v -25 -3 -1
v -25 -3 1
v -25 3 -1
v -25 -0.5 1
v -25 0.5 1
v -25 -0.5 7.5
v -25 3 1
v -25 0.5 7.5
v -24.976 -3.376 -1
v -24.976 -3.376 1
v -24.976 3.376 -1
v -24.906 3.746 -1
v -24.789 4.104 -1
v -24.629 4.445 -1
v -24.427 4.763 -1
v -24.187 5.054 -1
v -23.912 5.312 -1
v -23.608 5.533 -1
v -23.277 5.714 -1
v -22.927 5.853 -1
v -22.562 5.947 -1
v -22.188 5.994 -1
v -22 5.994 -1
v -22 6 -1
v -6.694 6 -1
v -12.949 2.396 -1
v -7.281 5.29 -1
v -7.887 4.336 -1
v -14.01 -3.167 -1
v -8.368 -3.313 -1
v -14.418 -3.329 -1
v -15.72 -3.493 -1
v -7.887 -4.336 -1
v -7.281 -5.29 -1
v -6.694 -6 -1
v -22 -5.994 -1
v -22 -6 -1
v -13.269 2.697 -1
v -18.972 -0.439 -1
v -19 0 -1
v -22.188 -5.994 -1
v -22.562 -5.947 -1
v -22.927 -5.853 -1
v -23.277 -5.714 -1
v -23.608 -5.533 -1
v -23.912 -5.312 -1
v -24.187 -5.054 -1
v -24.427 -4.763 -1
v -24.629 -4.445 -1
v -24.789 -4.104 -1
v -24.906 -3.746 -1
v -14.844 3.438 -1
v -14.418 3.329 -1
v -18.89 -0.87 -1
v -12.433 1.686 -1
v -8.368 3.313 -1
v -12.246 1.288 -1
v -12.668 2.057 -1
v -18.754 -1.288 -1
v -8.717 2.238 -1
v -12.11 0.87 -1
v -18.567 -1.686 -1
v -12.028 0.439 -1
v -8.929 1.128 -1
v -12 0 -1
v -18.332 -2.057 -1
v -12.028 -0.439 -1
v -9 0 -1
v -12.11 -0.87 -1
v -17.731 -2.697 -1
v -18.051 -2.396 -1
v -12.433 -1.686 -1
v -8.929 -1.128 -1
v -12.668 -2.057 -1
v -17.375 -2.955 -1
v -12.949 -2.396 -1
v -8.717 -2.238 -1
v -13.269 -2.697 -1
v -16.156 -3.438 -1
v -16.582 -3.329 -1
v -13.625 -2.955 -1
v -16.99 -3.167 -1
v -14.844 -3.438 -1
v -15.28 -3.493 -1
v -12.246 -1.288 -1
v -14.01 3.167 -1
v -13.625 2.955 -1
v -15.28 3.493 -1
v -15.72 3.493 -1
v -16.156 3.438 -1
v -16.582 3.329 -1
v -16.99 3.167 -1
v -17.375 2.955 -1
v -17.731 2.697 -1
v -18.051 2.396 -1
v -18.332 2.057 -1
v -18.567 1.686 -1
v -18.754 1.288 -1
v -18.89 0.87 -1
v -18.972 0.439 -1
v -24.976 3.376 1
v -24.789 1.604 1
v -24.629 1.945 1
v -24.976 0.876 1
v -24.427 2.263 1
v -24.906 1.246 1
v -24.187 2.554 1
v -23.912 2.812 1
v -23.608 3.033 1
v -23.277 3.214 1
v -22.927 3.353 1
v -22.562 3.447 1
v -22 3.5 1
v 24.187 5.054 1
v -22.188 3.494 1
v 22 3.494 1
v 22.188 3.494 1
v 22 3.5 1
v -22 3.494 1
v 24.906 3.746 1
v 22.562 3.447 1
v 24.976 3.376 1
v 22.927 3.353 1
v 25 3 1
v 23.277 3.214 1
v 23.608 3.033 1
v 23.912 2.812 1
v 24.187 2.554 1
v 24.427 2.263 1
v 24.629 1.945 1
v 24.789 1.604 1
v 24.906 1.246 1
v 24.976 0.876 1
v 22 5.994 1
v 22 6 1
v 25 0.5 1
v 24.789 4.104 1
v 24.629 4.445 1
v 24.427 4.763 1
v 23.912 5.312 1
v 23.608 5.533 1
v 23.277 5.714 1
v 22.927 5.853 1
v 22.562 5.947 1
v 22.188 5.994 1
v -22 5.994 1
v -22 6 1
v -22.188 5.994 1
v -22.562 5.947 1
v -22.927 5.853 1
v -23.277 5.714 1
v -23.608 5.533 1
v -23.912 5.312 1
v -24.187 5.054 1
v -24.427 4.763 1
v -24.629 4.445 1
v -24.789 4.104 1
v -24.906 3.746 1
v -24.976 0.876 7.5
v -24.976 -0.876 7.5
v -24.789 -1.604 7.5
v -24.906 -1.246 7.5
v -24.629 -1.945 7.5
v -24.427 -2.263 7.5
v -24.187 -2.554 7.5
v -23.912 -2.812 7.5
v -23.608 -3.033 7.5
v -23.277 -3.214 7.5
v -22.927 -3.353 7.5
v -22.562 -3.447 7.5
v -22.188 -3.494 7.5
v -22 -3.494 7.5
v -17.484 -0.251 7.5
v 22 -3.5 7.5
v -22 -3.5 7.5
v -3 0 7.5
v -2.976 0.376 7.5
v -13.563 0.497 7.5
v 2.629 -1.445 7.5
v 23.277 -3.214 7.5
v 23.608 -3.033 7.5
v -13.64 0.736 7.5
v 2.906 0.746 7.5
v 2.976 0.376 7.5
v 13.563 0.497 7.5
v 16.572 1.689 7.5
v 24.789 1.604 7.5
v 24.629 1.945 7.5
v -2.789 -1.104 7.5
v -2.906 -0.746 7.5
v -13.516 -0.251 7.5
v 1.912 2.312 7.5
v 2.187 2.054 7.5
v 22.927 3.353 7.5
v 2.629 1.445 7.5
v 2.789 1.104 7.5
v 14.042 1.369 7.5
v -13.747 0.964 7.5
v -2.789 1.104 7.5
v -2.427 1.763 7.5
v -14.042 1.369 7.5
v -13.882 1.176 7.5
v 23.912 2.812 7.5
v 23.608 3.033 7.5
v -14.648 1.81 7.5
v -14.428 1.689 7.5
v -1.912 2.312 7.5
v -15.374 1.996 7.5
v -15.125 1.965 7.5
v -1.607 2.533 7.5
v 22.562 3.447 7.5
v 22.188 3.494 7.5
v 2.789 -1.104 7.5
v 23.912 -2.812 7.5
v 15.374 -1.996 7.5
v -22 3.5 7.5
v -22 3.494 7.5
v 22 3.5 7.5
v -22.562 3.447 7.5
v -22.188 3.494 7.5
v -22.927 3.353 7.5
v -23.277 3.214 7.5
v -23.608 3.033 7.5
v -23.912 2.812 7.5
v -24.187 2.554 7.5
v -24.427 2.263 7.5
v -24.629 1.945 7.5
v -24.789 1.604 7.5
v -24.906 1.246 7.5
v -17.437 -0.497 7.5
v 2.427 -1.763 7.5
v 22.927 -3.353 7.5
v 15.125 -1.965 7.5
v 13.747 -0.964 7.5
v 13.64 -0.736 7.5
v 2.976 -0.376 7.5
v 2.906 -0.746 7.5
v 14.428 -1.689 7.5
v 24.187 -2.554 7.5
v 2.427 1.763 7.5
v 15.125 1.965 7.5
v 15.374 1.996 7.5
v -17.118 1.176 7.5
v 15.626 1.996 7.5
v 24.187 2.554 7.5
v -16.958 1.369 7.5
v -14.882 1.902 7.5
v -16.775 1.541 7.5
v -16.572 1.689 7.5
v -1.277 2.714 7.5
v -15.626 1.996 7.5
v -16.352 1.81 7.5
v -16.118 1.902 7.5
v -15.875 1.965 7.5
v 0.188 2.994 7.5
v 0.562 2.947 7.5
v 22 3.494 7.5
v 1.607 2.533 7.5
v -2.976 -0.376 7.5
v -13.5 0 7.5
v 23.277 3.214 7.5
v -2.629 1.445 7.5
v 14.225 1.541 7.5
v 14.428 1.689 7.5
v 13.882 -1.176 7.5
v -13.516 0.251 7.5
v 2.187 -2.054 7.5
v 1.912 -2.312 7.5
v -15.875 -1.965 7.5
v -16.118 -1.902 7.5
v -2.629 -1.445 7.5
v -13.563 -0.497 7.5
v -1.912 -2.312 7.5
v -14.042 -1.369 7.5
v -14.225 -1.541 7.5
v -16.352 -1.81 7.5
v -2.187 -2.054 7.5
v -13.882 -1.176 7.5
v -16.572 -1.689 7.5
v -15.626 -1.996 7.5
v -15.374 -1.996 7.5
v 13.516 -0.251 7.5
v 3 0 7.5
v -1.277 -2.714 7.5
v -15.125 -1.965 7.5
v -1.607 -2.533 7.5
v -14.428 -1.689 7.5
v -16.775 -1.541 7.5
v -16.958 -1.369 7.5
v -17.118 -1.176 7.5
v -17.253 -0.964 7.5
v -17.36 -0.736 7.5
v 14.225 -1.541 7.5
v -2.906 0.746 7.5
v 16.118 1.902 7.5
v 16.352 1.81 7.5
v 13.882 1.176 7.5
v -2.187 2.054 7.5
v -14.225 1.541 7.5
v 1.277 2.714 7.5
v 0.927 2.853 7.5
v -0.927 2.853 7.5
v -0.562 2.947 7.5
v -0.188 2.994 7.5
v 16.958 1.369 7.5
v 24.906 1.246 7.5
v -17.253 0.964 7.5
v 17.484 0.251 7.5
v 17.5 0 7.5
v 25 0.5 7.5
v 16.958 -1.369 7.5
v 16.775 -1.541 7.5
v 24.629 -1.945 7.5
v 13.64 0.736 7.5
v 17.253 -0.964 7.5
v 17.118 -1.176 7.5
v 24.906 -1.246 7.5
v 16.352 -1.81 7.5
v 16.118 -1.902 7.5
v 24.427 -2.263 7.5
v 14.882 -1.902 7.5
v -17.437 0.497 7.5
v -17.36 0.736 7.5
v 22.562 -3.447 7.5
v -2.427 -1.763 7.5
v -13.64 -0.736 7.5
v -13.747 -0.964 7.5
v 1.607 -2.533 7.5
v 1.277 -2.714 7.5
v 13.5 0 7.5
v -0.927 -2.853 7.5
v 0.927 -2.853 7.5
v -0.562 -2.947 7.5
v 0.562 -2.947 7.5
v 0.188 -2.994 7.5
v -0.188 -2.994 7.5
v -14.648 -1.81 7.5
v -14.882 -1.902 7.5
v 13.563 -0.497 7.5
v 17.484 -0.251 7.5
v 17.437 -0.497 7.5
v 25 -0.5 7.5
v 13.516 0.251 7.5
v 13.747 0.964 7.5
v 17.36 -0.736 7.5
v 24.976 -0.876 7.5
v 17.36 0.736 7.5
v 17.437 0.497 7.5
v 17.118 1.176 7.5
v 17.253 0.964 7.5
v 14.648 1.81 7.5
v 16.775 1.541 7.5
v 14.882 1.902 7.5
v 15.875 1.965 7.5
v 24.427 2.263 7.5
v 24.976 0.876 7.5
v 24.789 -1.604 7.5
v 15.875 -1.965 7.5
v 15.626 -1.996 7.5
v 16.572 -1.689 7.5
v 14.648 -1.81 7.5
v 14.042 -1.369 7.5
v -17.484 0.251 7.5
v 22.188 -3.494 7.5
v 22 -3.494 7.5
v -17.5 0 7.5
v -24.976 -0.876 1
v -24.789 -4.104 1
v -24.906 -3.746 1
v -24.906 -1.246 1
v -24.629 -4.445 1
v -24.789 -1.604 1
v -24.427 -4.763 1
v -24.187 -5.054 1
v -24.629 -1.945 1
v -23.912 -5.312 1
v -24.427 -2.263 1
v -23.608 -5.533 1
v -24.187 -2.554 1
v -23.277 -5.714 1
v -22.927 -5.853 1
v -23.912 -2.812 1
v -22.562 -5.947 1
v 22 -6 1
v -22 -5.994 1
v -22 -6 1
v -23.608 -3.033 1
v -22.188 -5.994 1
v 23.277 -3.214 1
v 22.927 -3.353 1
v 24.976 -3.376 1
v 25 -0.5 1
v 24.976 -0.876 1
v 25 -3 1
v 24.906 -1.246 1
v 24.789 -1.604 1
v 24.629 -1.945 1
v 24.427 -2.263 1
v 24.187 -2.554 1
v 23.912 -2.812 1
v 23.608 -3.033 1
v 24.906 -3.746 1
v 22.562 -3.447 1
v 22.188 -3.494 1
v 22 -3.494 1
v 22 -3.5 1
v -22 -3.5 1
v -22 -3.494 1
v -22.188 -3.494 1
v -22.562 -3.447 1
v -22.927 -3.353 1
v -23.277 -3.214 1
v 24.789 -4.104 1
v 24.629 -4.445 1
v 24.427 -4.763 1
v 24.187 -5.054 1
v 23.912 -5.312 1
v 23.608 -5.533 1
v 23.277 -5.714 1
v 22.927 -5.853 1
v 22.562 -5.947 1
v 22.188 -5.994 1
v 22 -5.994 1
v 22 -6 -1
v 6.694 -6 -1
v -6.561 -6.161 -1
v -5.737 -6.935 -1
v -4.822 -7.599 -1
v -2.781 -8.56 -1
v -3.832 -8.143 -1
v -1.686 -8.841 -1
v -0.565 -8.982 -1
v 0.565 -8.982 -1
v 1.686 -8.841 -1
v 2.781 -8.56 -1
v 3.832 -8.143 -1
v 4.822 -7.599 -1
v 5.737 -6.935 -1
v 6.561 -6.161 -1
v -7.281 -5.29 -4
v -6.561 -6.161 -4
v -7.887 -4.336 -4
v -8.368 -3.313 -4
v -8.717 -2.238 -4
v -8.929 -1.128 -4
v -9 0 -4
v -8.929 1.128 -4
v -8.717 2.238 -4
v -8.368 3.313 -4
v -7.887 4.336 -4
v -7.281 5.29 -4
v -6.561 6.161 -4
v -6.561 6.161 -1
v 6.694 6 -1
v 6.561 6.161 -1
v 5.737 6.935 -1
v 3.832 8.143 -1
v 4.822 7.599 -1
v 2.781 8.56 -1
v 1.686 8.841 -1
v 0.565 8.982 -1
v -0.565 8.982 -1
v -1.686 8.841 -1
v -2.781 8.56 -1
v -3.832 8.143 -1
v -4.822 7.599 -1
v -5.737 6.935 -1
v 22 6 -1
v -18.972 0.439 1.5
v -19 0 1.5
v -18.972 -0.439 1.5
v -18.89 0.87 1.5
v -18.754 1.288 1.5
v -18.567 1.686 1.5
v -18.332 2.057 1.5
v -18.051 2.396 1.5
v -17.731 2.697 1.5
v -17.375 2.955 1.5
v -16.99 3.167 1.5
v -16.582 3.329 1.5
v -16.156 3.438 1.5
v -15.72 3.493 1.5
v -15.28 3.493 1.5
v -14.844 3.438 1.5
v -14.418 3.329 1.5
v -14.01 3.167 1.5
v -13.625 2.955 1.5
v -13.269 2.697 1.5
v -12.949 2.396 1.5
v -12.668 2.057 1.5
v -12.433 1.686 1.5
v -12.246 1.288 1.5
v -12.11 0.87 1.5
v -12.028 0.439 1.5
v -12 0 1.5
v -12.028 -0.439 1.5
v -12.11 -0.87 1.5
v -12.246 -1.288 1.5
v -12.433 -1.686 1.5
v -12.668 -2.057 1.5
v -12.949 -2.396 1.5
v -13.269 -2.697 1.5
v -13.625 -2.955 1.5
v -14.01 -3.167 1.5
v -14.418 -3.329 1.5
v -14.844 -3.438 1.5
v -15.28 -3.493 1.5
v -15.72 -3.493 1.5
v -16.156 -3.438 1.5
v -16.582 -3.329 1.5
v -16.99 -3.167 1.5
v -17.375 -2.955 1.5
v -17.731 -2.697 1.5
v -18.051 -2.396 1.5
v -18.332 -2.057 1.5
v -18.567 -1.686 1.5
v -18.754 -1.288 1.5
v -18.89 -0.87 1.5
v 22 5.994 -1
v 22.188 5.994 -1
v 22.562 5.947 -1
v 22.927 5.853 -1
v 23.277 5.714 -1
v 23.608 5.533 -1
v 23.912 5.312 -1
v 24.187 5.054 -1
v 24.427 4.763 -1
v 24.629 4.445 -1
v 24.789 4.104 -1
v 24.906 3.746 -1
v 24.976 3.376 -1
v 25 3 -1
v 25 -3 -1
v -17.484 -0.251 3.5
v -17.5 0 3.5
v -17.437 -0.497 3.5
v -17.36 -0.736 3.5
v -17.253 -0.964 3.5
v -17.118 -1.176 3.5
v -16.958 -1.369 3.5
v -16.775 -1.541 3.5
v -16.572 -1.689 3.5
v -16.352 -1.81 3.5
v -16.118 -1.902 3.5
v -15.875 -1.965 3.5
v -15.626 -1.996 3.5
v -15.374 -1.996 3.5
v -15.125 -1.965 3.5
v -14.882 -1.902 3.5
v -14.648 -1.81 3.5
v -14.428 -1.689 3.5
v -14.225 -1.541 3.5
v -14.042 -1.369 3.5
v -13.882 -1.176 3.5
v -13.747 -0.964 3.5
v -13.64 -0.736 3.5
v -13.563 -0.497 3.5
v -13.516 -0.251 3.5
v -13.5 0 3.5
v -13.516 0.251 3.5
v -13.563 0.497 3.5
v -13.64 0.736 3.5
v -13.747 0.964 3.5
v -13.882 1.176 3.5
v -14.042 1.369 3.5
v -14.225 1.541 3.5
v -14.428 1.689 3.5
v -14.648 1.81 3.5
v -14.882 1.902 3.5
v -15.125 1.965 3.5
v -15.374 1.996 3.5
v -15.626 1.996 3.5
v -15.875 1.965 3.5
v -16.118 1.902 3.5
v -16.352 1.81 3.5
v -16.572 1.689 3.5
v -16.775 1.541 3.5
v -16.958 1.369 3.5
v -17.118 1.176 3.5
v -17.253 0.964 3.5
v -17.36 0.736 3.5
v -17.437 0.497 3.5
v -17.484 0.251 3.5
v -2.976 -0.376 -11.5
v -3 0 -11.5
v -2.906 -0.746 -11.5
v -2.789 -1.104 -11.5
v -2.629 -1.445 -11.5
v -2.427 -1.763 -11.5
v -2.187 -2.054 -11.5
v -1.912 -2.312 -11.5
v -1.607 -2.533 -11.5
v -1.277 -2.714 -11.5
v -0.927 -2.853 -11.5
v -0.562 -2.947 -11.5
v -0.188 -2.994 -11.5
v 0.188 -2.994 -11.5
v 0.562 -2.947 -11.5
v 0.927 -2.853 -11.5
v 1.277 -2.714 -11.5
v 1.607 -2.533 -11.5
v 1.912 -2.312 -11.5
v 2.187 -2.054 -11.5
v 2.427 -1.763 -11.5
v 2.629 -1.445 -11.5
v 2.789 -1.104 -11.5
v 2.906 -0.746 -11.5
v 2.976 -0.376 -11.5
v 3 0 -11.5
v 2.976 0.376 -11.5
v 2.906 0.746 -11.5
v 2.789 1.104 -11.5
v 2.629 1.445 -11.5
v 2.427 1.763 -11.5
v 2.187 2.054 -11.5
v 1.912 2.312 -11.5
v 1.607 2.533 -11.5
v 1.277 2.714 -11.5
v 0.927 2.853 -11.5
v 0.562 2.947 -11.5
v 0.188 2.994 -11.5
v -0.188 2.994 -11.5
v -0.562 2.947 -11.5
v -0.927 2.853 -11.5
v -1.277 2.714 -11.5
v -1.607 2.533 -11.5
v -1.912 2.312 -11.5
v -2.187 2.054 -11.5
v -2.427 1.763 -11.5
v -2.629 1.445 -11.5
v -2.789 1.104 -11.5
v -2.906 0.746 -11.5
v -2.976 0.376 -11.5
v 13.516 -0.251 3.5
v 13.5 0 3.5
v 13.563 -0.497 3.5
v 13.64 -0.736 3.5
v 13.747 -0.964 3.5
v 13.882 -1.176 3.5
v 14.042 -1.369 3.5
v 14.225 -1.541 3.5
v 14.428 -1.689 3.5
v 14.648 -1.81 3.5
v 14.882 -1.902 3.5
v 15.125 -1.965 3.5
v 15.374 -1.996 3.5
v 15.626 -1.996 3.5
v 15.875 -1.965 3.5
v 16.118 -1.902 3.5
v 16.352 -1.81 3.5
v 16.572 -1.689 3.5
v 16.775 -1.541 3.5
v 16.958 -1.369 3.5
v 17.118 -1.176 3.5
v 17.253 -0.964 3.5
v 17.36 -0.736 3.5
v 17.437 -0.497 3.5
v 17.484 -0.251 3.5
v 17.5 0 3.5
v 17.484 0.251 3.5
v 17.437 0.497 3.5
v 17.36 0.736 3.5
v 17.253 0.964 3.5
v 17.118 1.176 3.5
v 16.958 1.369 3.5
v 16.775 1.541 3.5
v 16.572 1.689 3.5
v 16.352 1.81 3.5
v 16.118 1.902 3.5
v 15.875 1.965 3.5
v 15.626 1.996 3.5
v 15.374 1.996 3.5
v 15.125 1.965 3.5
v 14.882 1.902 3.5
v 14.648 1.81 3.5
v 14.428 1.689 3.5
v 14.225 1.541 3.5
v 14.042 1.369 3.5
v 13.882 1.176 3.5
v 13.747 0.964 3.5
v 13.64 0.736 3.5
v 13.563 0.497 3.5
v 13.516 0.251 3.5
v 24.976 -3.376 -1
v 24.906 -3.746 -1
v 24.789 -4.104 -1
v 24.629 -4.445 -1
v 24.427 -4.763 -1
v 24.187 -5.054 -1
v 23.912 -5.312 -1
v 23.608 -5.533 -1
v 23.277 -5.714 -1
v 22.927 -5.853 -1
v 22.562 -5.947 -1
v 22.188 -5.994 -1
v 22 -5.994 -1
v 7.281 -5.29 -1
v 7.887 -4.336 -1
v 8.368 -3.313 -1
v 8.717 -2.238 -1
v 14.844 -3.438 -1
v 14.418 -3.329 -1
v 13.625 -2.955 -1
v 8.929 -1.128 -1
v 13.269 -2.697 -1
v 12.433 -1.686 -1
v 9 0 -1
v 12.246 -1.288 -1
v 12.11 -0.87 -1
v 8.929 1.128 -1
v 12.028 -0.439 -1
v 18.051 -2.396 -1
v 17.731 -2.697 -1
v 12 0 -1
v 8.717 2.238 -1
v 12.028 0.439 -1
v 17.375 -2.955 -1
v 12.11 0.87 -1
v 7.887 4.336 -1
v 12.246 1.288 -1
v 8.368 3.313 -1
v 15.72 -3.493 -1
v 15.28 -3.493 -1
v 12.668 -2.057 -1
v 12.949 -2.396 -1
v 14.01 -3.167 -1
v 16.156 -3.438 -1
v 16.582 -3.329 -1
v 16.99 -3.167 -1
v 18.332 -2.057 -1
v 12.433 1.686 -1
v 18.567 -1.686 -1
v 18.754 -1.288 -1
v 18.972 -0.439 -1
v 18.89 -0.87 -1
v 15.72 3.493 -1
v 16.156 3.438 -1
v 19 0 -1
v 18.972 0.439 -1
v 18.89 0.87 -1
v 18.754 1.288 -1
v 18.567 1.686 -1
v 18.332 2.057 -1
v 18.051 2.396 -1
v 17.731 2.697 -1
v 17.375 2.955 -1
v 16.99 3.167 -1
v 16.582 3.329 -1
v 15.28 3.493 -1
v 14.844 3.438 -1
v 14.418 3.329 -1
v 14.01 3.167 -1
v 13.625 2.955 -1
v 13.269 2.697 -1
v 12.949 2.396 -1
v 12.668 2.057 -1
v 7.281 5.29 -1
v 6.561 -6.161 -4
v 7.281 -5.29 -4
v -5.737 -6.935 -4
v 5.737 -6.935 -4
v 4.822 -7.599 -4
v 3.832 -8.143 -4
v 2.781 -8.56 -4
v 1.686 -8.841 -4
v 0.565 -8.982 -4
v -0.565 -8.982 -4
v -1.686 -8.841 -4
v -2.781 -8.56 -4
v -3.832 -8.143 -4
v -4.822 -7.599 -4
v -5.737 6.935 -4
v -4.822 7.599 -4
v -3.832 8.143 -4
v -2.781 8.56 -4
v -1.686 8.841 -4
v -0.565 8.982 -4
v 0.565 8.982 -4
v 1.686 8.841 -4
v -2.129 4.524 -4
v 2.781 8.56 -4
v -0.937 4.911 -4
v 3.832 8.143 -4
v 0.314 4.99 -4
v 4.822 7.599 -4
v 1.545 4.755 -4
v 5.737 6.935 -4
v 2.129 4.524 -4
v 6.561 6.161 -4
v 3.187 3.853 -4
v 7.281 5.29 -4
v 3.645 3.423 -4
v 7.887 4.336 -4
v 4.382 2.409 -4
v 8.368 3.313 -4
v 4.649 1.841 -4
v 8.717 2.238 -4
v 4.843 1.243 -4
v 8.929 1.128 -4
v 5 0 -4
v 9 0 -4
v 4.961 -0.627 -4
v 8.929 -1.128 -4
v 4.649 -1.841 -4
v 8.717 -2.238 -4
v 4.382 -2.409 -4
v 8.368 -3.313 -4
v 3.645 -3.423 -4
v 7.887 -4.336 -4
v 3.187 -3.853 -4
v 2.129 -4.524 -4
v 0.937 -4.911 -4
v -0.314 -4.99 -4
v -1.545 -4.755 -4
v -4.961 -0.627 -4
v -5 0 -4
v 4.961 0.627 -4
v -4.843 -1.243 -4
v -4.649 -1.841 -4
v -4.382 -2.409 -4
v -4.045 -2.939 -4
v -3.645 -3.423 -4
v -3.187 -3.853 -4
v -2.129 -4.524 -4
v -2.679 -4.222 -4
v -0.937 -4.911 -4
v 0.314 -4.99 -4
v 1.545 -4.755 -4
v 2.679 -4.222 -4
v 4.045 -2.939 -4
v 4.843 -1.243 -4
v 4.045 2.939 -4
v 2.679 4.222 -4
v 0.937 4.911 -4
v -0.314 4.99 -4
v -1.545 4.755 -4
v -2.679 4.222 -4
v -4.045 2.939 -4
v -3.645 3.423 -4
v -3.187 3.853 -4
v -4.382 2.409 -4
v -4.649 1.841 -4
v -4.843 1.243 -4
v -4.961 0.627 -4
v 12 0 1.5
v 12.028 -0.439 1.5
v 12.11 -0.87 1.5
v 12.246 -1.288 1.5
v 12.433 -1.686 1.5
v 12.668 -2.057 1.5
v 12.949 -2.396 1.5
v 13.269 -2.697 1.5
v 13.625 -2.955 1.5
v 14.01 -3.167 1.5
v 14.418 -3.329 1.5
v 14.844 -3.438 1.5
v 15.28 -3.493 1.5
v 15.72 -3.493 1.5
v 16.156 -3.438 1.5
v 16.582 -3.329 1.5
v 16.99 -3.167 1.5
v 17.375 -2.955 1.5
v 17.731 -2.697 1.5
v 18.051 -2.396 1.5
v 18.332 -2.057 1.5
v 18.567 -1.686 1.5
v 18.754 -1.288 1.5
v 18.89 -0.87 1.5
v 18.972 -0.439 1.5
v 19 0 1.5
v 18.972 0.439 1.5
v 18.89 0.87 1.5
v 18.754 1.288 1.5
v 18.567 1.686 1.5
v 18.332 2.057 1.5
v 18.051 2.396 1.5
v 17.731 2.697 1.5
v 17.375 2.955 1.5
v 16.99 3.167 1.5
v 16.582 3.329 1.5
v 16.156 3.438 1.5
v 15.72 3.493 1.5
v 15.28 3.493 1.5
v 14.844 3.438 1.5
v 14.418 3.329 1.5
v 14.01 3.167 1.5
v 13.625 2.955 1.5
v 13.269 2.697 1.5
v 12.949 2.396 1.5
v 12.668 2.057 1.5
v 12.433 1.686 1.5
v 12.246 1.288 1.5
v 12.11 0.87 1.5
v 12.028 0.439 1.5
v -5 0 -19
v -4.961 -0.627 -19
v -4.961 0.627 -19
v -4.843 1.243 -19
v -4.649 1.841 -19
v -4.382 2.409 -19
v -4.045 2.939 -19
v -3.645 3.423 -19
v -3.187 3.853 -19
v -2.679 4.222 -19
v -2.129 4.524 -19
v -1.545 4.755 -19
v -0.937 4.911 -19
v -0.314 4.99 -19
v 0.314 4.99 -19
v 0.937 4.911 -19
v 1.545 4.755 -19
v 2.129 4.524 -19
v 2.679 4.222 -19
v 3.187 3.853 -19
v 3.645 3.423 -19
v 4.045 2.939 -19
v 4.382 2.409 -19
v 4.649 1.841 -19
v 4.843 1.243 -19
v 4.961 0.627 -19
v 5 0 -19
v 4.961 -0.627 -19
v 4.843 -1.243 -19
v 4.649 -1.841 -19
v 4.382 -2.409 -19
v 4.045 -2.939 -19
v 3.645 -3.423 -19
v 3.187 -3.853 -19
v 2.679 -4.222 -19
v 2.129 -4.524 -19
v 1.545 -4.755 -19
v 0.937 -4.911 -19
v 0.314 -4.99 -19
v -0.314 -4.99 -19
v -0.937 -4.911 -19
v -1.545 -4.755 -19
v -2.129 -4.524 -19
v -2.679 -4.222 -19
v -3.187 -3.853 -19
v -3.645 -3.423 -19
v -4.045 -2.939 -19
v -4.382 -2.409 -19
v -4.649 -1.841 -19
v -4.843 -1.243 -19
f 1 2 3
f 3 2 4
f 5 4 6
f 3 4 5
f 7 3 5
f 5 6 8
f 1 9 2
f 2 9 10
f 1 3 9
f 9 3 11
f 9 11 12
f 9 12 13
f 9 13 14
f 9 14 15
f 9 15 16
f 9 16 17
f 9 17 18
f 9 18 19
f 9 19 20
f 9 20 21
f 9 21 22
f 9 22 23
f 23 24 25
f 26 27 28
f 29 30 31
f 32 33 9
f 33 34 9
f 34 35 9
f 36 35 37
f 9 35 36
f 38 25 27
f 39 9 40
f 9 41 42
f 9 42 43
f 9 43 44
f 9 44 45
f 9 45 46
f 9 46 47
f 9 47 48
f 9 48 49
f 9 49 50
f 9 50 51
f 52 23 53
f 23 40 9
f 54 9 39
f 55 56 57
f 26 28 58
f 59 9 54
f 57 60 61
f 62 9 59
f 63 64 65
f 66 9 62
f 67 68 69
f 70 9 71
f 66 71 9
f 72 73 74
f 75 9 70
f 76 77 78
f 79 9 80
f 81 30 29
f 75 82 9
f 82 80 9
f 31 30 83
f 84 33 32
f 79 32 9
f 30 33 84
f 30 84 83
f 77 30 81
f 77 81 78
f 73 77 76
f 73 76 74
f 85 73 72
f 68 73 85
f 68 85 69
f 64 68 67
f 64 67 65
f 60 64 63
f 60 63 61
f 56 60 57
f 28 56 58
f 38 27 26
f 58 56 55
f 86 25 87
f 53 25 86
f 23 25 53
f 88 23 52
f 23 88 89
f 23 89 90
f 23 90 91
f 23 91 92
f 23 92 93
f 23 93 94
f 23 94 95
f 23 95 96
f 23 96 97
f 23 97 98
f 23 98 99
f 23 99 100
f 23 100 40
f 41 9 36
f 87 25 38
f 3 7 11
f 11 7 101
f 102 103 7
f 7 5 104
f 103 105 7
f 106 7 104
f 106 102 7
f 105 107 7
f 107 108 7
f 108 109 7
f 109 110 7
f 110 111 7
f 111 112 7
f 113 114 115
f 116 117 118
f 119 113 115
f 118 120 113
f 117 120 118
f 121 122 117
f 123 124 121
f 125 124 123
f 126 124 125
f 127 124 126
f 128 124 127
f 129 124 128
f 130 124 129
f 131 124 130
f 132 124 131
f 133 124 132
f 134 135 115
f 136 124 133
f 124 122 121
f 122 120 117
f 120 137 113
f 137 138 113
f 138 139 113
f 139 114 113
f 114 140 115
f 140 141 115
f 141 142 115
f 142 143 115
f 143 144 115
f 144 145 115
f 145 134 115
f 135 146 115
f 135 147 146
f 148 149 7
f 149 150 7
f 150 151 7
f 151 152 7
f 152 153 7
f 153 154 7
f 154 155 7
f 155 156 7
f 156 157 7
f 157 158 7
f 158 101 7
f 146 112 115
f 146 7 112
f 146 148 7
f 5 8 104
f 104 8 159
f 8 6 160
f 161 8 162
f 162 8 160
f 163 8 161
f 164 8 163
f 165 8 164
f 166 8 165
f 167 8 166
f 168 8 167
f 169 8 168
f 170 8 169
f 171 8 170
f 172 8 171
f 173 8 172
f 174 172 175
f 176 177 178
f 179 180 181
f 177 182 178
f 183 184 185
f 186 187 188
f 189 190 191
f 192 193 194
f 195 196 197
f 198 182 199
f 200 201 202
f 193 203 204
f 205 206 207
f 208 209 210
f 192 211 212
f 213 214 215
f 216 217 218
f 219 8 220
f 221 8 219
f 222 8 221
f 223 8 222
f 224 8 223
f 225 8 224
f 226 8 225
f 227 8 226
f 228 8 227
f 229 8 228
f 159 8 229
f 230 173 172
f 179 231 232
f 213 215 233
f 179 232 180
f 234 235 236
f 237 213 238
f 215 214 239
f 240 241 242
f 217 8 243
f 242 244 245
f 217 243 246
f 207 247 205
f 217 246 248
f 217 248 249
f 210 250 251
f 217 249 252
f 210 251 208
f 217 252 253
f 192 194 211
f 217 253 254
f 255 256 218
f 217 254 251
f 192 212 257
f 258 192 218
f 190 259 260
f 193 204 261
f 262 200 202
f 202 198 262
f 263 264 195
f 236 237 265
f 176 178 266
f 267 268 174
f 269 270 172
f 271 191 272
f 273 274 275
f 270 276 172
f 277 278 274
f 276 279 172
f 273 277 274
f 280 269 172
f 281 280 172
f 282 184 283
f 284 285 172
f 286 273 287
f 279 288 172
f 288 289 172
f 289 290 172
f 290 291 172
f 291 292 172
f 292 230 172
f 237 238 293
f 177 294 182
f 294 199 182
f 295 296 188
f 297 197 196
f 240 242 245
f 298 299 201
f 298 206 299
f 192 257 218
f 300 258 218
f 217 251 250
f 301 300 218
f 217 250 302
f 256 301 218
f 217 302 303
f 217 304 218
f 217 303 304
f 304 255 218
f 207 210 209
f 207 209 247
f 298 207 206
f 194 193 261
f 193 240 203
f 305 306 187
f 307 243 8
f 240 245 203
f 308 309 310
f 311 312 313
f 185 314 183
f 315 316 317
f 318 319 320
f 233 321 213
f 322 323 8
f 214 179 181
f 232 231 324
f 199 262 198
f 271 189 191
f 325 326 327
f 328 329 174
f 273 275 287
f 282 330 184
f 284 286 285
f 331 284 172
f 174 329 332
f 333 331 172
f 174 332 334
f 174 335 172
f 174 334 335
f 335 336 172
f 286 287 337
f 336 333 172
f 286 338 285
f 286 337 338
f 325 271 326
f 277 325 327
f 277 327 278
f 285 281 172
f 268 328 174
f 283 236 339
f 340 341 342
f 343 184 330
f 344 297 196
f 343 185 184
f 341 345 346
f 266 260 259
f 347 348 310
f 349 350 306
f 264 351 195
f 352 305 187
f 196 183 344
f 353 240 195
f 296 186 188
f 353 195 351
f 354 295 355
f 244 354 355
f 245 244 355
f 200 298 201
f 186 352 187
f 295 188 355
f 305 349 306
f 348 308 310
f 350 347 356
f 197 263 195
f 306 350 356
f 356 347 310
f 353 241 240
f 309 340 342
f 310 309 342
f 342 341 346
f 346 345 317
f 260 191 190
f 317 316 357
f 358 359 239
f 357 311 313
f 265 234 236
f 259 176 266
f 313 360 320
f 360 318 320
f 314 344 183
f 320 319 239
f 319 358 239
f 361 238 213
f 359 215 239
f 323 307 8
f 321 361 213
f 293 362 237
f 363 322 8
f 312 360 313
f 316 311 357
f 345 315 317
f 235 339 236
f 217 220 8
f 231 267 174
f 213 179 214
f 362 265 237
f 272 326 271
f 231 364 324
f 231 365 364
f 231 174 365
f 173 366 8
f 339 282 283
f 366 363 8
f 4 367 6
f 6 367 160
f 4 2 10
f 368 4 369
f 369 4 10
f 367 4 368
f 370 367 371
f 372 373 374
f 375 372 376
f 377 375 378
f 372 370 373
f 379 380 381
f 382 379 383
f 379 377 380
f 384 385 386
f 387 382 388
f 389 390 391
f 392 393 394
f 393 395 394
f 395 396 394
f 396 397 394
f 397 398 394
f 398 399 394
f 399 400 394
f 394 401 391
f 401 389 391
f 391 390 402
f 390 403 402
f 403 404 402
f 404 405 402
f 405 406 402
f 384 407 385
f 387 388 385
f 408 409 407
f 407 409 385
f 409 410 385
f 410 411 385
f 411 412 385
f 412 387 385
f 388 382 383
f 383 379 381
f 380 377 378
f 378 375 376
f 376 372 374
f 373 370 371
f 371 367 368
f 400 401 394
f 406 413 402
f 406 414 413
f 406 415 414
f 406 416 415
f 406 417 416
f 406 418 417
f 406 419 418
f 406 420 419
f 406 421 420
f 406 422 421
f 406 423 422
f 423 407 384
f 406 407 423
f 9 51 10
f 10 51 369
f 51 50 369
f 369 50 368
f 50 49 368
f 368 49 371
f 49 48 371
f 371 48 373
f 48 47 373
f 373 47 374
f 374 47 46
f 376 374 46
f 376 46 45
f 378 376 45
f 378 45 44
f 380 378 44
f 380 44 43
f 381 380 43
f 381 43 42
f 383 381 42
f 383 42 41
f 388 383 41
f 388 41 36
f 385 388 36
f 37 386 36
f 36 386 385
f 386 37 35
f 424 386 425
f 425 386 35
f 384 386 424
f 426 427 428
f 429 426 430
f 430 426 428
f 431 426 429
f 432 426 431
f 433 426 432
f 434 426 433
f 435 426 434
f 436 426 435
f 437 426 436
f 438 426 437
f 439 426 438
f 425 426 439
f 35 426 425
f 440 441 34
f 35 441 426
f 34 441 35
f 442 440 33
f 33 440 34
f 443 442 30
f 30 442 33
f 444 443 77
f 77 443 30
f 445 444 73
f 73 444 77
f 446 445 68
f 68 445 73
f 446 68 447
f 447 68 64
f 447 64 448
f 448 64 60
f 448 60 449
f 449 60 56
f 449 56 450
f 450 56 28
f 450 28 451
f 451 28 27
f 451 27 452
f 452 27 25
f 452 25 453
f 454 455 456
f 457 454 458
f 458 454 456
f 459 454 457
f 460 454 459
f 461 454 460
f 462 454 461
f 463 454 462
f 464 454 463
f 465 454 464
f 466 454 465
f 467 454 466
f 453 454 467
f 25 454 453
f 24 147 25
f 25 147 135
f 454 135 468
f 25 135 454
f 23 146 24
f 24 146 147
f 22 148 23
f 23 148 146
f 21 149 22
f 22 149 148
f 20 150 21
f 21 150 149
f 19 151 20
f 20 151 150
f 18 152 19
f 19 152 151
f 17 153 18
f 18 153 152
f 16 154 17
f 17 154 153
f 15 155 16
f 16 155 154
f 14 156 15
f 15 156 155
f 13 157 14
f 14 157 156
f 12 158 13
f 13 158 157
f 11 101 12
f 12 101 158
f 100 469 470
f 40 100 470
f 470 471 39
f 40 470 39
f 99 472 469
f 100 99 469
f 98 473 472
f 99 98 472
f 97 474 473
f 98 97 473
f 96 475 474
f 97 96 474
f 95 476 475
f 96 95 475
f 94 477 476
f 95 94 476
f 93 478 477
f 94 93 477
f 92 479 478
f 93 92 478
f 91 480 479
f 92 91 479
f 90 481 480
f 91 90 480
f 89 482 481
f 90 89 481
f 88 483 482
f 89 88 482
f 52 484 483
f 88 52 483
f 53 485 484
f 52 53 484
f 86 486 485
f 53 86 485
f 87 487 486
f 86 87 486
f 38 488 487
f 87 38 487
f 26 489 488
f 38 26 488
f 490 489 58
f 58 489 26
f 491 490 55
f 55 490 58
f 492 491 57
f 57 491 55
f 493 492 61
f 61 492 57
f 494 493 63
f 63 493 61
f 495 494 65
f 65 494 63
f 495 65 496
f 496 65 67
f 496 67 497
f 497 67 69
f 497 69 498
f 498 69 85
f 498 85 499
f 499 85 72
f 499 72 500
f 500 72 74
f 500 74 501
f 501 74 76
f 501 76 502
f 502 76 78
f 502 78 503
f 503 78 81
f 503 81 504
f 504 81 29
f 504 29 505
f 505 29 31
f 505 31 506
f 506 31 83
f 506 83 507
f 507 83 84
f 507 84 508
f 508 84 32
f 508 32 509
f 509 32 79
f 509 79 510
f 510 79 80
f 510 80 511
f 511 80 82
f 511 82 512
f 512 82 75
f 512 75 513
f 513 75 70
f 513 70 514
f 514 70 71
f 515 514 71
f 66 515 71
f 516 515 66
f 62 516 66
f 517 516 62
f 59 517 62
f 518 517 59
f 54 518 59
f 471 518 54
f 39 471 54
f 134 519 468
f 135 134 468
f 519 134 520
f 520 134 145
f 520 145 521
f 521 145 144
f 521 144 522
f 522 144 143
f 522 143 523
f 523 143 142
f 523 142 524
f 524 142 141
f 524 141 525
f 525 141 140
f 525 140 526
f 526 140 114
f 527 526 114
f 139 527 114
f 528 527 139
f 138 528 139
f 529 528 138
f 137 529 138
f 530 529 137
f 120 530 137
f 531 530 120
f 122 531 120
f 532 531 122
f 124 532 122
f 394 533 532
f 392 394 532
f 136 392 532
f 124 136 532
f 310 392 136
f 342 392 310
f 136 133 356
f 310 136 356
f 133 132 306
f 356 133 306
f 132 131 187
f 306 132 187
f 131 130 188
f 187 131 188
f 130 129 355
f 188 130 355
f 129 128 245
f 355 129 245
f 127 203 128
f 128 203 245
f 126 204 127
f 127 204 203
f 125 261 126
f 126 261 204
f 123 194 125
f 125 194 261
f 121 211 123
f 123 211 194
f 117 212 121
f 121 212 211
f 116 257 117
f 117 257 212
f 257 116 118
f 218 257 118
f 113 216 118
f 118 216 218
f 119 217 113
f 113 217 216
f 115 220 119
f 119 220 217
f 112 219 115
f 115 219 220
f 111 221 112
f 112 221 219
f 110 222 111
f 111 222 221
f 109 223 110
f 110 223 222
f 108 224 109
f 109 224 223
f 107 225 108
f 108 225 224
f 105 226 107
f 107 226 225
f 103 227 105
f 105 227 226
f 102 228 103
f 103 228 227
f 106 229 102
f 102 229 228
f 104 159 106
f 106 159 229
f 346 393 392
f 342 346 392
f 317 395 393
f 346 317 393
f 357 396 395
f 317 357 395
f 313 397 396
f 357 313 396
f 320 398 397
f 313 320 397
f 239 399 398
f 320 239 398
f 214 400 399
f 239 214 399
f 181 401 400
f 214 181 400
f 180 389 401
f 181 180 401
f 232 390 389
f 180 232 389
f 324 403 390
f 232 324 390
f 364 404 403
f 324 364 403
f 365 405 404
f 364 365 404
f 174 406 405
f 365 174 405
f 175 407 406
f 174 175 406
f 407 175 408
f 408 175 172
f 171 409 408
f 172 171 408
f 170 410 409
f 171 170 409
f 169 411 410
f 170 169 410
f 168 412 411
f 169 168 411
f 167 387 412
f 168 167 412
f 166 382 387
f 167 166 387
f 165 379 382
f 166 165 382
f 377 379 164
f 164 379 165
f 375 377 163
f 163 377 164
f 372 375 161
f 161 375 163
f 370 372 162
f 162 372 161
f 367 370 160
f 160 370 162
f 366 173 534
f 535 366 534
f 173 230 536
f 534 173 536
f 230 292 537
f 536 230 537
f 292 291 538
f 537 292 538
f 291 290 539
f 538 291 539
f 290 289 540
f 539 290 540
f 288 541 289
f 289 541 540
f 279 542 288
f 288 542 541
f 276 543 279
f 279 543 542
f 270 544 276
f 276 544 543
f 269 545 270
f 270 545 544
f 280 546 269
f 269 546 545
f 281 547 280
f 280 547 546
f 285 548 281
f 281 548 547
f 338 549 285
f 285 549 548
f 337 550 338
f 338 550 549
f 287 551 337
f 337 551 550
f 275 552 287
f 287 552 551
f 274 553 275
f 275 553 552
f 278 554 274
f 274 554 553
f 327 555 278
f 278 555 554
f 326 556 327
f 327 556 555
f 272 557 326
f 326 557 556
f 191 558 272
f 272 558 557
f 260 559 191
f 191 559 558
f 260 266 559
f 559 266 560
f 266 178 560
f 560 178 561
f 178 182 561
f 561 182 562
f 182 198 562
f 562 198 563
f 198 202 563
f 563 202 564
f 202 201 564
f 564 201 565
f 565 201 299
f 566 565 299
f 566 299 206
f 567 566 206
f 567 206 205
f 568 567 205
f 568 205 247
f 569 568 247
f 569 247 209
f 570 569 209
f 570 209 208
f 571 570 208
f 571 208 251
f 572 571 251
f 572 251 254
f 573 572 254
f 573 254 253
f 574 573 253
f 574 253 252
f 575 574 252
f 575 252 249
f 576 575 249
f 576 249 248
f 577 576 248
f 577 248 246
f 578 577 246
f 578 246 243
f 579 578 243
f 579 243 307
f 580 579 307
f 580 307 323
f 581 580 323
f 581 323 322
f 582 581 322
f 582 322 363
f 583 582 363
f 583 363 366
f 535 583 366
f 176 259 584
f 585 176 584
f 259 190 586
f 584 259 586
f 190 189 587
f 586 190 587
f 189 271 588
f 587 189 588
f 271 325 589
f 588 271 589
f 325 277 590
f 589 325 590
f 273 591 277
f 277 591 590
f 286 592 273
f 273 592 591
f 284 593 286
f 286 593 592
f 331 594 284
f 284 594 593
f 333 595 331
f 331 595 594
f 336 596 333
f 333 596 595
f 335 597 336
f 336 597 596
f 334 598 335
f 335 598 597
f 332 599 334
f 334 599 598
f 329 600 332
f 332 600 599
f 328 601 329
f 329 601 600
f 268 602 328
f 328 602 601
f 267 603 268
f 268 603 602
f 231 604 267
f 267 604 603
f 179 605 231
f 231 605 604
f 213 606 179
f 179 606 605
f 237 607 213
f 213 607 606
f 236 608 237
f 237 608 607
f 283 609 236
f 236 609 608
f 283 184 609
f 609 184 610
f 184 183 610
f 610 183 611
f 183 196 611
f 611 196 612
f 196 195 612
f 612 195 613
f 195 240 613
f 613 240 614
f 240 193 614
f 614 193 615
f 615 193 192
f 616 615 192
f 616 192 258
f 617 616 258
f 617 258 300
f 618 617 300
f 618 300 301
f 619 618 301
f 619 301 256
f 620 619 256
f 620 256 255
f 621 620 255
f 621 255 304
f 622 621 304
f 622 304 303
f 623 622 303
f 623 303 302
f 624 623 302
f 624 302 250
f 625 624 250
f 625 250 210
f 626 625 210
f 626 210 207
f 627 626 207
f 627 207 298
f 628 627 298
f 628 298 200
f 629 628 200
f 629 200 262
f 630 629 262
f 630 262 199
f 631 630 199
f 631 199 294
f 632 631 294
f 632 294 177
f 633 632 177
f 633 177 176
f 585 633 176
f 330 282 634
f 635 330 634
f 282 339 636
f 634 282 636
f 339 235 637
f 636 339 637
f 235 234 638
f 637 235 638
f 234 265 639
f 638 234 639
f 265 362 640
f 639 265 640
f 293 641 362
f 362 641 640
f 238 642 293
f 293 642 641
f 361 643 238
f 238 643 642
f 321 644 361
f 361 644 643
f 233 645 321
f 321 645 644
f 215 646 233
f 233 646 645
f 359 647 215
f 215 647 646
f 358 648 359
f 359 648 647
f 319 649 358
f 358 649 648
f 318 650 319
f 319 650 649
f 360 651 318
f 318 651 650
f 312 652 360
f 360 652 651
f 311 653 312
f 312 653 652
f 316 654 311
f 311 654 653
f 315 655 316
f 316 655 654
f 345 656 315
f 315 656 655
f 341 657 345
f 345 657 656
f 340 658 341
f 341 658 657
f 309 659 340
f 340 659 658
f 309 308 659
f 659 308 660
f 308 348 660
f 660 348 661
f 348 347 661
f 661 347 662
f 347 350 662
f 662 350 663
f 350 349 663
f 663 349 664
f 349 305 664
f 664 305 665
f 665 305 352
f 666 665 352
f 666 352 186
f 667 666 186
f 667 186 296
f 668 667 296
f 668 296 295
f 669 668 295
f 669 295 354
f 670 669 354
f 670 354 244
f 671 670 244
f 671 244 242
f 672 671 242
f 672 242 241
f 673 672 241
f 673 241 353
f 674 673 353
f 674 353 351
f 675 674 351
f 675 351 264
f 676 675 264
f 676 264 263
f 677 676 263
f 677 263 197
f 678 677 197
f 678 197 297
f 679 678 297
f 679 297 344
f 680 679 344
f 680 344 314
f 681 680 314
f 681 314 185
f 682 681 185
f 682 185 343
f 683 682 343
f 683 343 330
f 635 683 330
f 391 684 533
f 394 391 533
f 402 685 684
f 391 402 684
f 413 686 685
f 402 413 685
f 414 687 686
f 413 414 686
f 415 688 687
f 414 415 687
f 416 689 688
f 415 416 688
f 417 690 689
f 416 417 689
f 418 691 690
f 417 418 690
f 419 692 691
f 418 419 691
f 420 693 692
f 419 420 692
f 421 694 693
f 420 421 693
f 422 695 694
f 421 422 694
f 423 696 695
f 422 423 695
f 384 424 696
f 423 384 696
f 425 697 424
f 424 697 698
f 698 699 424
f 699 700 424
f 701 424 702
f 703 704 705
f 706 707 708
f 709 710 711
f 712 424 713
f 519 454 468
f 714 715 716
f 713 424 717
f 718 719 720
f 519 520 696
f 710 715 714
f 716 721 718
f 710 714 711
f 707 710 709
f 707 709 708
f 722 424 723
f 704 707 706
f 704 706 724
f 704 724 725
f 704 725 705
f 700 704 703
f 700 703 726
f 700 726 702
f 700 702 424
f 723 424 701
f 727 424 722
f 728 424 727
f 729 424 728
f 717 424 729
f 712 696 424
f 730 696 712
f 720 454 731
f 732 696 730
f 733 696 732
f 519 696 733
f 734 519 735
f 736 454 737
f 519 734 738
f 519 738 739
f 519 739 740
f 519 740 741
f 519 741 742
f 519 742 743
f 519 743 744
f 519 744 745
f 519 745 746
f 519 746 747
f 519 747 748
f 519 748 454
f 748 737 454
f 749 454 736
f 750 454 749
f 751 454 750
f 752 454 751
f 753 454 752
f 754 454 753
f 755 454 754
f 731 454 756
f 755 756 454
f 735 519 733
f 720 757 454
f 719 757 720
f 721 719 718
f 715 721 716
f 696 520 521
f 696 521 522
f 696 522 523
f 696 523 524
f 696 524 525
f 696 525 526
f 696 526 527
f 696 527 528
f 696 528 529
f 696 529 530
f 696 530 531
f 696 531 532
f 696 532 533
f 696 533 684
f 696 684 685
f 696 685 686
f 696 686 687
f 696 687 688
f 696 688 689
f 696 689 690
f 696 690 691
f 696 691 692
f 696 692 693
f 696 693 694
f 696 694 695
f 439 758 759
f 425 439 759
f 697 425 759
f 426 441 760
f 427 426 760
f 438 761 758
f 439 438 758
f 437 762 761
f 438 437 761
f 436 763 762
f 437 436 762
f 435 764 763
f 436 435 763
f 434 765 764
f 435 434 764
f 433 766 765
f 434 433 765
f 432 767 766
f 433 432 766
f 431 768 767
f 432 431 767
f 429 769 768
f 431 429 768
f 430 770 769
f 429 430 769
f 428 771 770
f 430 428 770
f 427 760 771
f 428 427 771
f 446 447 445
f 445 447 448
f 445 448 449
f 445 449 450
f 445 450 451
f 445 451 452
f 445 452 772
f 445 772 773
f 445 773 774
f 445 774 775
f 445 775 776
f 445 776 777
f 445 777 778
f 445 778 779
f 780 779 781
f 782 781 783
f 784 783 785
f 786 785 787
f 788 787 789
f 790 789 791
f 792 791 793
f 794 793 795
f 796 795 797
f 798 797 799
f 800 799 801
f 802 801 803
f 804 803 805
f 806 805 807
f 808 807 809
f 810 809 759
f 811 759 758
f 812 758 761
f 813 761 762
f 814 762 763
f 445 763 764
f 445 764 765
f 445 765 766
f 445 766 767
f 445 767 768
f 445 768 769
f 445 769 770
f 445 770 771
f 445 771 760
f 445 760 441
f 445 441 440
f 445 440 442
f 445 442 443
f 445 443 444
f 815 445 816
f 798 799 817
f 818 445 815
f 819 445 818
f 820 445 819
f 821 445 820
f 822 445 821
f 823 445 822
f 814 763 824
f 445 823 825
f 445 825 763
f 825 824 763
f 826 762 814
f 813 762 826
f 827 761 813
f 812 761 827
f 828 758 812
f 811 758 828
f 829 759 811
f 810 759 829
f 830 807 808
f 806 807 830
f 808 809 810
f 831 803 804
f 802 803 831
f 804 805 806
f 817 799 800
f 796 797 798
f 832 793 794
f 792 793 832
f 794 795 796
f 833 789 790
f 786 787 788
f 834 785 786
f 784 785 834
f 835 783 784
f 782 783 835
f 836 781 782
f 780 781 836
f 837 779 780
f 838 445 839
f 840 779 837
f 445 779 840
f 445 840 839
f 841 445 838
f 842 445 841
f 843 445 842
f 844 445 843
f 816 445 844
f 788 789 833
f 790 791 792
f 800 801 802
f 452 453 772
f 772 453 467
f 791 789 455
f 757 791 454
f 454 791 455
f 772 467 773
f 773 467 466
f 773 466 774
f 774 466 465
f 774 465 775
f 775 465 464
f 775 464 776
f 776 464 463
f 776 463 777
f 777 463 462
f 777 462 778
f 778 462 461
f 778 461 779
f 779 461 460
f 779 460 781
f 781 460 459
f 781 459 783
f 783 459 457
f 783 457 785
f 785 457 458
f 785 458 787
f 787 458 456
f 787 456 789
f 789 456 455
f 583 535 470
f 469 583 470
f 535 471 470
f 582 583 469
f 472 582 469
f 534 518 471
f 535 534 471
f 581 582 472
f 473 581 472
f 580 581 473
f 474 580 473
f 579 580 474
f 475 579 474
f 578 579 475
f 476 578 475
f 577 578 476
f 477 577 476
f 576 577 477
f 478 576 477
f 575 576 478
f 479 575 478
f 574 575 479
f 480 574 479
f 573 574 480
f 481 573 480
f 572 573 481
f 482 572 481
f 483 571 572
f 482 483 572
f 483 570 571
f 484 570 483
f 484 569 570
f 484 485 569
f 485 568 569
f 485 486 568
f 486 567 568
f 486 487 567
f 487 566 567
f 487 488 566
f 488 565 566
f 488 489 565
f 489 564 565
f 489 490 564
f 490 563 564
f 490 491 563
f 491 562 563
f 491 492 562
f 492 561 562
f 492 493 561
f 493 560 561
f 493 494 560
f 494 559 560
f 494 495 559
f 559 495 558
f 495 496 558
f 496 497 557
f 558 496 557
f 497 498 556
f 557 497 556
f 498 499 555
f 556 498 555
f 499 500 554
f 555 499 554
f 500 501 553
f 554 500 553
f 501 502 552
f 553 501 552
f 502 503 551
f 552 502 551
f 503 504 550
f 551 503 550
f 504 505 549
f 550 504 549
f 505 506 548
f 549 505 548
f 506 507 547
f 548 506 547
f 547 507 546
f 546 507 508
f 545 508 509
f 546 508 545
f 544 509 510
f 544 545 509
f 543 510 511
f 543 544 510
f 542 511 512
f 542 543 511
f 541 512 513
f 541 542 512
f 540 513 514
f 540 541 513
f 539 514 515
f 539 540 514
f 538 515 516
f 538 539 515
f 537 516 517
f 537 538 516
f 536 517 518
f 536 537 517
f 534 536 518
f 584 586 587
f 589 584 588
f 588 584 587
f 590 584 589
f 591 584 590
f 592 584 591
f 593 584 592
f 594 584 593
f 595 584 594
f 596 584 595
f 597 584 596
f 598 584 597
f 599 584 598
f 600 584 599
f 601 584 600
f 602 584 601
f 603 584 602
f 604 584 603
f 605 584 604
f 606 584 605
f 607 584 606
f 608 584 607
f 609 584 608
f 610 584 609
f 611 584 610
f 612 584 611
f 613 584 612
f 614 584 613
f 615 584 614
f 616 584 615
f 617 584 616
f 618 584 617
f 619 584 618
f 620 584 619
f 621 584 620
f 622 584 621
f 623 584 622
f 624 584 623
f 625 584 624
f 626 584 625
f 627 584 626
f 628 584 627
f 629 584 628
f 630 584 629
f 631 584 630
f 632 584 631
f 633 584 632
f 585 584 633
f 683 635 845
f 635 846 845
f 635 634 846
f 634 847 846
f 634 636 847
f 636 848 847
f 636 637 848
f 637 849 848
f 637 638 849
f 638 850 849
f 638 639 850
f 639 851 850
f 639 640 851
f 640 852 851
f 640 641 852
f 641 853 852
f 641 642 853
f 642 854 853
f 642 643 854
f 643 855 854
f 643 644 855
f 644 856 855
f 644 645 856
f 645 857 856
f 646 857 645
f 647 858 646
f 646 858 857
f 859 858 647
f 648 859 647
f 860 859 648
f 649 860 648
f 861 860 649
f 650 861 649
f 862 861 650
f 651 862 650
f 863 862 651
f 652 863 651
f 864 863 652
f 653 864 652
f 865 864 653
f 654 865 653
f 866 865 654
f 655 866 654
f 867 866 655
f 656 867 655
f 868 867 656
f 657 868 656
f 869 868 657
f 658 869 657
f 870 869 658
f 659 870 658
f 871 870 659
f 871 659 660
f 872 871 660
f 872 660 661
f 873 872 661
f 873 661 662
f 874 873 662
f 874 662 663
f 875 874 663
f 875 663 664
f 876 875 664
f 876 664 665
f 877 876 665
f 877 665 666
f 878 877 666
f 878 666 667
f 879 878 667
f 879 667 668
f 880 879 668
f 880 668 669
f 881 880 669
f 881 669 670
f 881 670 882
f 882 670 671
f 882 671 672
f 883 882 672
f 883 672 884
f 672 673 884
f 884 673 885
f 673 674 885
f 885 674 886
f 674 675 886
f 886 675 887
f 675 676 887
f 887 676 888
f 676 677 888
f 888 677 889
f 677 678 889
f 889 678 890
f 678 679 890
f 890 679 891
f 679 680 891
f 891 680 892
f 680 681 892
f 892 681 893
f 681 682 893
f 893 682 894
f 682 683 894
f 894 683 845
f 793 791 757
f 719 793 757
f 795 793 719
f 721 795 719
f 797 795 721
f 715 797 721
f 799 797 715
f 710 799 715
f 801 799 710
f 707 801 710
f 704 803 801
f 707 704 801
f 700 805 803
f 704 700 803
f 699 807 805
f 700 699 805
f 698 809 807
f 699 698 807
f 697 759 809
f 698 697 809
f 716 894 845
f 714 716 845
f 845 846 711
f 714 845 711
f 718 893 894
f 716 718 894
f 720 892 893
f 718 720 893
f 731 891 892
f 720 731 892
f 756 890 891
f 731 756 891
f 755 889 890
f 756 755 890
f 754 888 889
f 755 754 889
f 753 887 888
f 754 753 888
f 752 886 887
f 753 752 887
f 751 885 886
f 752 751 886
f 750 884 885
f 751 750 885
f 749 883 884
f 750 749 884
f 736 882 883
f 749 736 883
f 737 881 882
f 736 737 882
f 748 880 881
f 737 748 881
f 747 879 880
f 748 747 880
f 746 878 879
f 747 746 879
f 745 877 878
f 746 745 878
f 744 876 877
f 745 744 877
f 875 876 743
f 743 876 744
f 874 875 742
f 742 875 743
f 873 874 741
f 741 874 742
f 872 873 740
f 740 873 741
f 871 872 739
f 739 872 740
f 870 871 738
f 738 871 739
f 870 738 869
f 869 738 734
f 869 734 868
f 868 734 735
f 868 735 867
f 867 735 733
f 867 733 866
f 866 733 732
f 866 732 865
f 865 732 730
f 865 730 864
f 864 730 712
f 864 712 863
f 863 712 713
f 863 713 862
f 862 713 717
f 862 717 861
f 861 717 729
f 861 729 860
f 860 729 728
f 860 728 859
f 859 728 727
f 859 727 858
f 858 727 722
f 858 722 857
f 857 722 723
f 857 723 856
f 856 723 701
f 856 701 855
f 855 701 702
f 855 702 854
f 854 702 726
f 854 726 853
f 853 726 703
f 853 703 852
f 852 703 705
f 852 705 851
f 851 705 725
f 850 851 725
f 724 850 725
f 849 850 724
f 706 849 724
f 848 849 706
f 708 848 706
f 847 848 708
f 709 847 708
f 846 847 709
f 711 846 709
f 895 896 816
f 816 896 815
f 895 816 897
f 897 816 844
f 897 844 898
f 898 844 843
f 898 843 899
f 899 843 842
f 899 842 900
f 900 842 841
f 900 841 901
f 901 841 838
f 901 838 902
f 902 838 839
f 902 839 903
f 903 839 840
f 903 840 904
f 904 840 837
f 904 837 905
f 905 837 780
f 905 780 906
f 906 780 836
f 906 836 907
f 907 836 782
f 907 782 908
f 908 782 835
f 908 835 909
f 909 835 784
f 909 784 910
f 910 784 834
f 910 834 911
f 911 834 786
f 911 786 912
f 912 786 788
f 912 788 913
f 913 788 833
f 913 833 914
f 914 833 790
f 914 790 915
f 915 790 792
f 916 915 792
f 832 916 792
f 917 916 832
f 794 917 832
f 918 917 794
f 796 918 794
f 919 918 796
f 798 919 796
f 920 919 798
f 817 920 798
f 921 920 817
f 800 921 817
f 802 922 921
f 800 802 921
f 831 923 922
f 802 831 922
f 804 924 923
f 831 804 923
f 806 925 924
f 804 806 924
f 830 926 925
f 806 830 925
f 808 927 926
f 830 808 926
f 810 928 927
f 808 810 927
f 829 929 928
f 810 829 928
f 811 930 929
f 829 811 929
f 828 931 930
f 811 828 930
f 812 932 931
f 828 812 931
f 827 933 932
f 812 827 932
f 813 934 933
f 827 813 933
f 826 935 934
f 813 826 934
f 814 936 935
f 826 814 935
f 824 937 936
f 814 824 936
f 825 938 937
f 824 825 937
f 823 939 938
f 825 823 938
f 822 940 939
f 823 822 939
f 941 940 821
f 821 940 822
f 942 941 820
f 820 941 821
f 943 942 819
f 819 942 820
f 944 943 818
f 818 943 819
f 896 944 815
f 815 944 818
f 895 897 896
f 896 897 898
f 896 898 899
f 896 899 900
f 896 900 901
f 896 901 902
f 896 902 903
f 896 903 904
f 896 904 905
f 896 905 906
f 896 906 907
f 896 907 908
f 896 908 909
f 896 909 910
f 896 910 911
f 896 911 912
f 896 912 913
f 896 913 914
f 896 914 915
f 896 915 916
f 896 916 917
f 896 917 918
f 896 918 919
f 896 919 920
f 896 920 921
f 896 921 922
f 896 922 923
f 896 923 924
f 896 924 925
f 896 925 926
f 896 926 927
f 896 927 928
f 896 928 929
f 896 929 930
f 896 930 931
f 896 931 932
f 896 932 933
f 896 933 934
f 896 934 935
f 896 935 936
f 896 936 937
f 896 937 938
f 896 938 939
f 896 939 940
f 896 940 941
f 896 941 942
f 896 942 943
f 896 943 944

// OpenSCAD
//Designed for an Avanti shower door
use <MCAD/boxes.scad>
module showerdoor_bracket() {
difference() {
union() {
roundedBox([50,12,2],3,true,center=true);
translate([0,0,(2+6.5)/2]) roundedBox([50,7,6.5],3,true,center=true);
translate([0,0,-(2+3)/2])cylinder(r=9,h=3,center=true);
translate([0,0,-(2/2+3+15/2)])cylinder(r=5,h=15,center=true);
}
//31
translate([0,0,-1.5]) cylinder(r=3,h=20,center=true);
translate([31/2,0,0]) cylinder(r=2,h=20,center=true);
translate([-31/2,0,0]) cylinder(r=2,h=20,center=true);
translate([31/2,0,2.5]) cylinder(r1=3.5,r2=2,h=2,center=true);
translate([-31/2,0,2.5]) cylinder(r1=3.5,r2=2,h=2,center=true);
translate([31/2,0,-0.5]) cylinder(r=3.5,h=4,center=true);
translate([-31/2,0,-0.5]) cylinder(r=3.5,h=4,center=true);
}
}

showerdoor_bracket();
$fn=50;
